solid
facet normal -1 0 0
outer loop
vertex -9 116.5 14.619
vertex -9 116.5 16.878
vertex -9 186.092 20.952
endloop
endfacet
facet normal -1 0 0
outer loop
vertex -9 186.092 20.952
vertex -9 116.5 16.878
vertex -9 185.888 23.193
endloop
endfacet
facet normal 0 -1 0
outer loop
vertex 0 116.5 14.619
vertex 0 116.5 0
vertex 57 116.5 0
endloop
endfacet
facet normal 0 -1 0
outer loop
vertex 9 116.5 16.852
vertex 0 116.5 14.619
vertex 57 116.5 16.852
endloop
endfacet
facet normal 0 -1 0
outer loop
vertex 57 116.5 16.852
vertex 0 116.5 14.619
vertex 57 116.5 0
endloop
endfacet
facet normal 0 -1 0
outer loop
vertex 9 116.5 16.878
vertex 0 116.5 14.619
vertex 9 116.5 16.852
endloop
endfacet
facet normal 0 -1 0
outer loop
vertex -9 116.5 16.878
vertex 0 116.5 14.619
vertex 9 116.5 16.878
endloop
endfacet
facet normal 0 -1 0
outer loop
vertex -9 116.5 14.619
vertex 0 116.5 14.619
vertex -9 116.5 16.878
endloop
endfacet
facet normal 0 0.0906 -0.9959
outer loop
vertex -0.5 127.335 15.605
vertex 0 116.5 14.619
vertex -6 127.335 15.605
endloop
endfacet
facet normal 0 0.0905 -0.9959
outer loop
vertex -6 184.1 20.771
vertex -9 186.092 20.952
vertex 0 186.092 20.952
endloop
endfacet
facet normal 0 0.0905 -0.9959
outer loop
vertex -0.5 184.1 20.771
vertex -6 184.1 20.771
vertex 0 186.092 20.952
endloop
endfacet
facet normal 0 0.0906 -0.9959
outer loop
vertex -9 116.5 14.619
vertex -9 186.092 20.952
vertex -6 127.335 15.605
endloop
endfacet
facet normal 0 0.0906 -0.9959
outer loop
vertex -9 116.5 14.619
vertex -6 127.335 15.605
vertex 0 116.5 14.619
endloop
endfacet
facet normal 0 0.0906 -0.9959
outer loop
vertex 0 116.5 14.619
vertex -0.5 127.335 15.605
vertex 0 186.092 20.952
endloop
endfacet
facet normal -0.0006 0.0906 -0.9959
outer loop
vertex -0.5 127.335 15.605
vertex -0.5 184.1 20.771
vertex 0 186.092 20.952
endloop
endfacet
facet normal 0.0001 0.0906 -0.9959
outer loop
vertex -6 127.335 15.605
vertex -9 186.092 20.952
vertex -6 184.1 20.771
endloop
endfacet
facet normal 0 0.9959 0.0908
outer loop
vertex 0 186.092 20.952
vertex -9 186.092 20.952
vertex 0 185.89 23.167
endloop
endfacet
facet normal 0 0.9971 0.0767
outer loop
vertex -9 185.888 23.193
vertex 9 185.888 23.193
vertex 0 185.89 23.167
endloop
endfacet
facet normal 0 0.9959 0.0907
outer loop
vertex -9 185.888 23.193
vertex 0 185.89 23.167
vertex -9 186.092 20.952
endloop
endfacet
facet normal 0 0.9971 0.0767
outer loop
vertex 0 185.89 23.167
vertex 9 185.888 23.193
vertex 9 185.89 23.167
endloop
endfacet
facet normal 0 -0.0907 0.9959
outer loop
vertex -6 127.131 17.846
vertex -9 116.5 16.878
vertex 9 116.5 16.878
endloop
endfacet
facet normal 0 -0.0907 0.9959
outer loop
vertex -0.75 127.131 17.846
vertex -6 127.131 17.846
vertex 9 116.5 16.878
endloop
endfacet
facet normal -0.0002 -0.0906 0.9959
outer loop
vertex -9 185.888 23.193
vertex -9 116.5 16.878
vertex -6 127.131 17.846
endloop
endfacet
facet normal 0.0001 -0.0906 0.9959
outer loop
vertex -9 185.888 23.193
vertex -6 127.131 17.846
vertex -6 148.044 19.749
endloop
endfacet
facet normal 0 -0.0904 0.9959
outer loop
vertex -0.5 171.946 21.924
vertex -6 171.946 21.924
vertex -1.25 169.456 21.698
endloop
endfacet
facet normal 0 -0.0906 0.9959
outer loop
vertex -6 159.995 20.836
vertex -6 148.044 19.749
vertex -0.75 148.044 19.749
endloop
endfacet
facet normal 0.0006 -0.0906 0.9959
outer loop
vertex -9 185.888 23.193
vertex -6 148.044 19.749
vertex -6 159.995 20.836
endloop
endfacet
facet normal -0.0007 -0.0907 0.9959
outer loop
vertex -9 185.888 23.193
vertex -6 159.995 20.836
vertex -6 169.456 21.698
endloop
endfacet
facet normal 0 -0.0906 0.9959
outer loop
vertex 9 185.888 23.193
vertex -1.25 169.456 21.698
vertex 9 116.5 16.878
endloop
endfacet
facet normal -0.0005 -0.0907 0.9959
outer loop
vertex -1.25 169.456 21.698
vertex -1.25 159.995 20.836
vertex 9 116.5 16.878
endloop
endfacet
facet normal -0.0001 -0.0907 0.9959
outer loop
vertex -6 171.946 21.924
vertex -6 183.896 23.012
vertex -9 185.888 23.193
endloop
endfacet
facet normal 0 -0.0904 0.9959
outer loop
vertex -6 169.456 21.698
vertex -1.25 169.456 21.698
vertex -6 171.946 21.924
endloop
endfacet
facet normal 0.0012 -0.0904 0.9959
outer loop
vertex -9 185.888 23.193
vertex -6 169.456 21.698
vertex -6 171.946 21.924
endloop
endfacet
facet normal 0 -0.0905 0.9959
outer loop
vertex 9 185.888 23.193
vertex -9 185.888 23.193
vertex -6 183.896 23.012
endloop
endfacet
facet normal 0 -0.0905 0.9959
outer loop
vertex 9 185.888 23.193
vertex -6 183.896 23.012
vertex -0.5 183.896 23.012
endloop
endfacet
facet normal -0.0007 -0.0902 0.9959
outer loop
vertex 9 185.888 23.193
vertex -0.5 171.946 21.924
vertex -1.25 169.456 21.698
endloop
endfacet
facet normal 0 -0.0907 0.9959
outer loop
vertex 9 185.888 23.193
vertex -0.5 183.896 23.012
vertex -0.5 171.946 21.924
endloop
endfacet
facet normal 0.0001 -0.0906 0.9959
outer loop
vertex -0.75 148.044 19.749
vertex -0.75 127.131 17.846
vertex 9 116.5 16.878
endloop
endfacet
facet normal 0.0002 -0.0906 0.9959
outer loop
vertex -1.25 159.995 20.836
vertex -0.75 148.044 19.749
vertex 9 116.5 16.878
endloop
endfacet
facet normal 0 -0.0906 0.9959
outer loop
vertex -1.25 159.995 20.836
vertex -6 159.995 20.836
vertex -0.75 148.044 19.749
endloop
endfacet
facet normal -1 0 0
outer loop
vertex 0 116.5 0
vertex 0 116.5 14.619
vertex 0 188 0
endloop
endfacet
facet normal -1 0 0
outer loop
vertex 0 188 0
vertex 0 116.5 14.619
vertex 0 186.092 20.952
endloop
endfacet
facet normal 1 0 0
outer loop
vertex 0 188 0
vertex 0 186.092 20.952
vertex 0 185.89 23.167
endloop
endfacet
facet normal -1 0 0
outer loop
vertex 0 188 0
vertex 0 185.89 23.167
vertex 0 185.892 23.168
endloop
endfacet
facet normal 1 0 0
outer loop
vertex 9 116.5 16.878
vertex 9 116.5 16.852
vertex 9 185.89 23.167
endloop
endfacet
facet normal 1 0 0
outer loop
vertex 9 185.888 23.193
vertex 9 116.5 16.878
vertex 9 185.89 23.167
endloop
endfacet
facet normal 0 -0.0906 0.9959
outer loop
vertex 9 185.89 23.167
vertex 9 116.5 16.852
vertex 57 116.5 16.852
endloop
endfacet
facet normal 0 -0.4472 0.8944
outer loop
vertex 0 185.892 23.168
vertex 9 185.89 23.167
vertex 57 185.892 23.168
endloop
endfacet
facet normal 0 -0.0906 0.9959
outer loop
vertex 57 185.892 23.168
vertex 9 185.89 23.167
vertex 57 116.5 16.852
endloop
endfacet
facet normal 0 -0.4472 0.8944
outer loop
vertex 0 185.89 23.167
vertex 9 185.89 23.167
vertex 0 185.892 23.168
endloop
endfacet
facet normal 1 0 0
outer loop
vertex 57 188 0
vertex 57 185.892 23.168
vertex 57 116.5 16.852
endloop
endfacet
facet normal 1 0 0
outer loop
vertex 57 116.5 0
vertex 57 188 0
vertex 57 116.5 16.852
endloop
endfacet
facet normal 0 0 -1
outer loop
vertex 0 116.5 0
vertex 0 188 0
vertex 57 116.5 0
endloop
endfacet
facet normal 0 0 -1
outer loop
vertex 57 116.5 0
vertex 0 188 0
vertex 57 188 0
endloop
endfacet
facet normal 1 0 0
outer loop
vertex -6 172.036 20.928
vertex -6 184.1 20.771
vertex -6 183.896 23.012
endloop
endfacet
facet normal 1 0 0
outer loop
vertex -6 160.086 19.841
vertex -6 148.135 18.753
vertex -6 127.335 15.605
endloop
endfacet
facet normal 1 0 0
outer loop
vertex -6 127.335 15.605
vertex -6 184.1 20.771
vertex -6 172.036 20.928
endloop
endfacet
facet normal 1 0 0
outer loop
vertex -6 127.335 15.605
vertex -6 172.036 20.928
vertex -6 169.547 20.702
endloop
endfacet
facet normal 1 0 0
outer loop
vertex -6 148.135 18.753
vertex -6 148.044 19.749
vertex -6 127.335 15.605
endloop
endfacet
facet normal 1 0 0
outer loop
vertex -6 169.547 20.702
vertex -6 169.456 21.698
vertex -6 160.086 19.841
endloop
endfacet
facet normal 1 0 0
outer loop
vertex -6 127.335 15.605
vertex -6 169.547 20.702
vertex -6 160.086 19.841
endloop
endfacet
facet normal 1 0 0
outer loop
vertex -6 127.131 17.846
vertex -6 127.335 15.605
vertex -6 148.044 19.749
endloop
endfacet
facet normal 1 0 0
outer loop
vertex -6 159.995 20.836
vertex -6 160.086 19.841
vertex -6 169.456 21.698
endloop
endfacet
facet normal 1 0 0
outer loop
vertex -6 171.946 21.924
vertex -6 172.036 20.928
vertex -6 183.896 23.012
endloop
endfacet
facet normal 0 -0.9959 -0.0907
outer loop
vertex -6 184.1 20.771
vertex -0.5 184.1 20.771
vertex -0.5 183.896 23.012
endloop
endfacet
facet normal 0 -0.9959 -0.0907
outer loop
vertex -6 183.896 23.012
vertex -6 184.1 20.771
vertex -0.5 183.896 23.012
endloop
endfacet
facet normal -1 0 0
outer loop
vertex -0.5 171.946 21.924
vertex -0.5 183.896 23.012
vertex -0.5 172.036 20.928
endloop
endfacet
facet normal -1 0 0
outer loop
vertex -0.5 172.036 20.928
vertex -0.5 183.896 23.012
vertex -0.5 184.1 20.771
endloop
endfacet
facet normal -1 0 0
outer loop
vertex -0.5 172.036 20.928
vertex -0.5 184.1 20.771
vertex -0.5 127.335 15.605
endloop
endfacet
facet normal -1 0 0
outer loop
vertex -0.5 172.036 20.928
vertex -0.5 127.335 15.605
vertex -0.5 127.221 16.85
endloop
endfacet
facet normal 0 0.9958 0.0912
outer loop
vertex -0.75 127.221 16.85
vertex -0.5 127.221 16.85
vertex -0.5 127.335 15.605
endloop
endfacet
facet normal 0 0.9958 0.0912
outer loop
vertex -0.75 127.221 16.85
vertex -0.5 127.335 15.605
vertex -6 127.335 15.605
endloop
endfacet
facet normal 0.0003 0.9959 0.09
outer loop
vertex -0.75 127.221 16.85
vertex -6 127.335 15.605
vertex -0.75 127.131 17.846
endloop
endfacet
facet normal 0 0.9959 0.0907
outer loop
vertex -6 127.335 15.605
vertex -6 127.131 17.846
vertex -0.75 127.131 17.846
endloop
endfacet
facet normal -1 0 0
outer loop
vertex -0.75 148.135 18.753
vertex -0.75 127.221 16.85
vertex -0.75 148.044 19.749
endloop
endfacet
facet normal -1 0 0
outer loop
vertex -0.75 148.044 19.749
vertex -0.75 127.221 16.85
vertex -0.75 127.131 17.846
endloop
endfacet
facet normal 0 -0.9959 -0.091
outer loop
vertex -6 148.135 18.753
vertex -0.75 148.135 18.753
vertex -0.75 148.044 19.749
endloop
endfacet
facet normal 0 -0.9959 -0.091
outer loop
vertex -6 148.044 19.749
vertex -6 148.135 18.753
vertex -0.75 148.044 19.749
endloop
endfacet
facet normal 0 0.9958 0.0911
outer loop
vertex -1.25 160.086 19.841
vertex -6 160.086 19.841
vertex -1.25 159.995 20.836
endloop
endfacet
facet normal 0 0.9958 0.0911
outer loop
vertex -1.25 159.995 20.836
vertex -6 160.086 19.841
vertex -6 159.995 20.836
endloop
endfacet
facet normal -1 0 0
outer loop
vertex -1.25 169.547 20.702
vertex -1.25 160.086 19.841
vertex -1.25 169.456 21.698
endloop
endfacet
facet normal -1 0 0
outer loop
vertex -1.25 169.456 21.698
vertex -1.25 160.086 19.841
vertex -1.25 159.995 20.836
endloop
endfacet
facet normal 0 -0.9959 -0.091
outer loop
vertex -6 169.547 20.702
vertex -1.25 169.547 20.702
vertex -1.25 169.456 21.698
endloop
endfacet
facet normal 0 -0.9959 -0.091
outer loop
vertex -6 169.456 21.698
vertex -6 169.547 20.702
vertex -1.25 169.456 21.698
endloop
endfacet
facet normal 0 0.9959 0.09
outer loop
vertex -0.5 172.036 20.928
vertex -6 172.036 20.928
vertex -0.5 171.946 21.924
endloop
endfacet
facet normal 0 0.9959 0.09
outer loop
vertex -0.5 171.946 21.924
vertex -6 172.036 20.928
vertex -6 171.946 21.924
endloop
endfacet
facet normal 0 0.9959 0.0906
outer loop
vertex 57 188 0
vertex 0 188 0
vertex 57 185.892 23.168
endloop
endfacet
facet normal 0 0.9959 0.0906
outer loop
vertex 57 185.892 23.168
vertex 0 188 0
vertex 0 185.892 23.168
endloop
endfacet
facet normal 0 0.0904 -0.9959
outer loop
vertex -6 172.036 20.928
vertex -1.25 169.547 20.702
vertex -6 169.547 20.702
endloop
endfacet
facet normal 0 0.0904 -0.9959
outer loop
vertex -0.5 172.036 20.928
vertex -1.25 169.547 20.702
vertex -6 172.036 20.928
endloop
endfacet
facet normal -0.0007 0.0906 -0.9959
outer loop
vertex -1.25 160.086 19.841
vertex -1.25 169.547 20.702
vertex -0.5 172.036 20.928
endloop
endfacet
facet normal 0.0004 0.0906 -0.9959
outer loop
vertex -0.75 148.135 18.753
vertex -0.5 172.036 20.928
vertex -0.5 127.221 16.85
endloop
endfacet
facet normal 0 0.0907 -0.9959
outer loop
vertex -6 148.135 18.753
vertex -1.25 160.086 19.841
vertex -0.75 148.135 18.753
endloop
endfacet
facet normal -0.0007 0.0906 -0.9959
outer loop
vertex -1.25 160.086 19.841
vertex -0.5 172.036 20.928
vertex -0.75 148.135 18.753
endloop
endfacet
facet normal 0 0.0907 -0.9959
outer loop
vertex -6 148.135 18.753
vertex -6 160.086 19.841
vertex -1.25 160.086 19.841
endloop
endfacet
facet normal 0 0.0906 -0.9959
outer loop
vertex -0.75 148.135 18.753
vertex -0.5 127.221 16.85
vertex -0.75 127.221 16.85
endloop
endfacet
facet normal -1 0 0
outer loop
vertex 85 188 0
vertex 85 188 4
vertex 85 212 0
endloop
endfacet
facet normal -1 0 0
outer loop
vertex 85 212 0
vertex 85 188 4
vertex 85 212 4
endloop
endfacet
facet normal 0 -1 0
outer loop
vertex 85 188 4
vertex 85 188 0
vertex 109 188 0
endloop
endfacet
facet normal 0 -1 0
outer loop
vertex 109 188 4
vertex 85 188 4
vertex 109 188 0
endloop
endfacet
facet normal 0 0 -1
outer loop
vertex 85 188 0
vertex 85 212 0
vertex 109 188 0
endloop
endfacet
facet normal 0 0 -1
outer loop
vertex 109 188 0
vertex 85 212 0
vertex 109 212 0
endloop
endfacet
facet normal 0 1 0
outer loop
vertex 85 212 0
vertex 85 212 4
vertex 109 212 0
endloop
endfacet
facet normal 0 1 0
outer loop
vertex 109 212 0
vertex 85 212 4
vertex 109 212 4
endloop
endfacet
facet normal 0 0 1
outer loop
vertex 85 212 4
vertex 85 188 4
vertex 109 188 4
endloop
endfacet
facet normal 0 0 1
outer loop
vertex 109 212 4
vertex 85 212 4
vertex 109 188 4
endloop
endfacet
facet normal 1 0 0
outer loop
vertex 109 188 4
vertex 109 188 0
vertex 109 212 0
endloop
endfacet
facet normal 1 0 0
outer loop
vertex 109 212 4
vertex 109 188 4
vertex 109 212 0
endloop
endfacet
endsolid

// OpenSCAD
// Main geometry of the wedge
wedge_length = 188;
wedge_width = 75;
heigth_front = 4;
heigth_back = 21;
wedge_angle = 5.2;		// found by trial and error

// Mounting part
mount_length = 70;
mount_width = 18;
mount_height = 2.25;

// distance between the back and 1st socket(from the back)
dist_back_1 = 2;

// hole 1 dimensions
hole1_length = 12;
hole1_width = 5.5;
hole1_height = mount_height + 1;

// distance between the 1st and 2nd socket(from the back)
dist_1_2 = 2.5;

// hole 2 dimensions
hole2_length = 9.5;
hole2_width = 4.75;
hole2_height = mount_height + 1;

// distance between the 2nd and 3rd socket(from the back)
dist_2_3 = 12;

// hole 3 dimensions
hole3_length = 21;
hole3_width = 5.25;
hole3_height = mount_height + 1;

// Some output for quick measuring (in german)
// plus some stupid spacing alignment
echo(str ("Abstand Loch 1 zum hinteren Ende :", dist_back_1));
echo(str ("Länge Loch 1                                   : ", hole1_length));
echo(str ("Abstand Loch 2 zu Loch 1                : ", dist_1_2));
echo(str ("Länge Loch 2                                   : ", hole2_length));
echo(str ("Abstand Loch 2 zu Loch 3                : ", dist_2_3));
echo(str ("Länge Loch 3                                   : ", hole3_length));
echo(str ("Rest                                                 : ", 
	 mount_length - dist_back_1 - hole1_length - dist_1_2 - hole2_length - dist_2_3 - hole3_length));


// wedge : 

// rotate it so it's resting on it's top
//rotate([0,180,0])

// rotate it so it's even on the ground
//rotate([-wedge_angle, 0, 0])

difference() {
	union() {
		difference() {
			// main cube which is reduced bit by bit
			cube(size = [wedge_width, wedge_length, heigth_back + mount_height], center = false);
			// 
			union() {
				// subtraction of the upper pitch
				// x : -0.5 for clear edges
				// z : offset since it has some heigth in the front + the heigth of the mount
				translate([-0.5, 0, heigth_front + mount_height])
					rotate([wedge_angle, 0, 0])
						// x : + 1 for clear edges
						// y : + 5 just to be sure
						// z : 25 just to be sure
						cube(size = [wedge_width + 1, wedge_length + 5, 25], center = false);
				// subtraction of the back pitch
				// x : -0.5 for clear edges
				// y : to start at the back end of the wedge
				translate([-0.5, wedge_length, 0])
					rotate([wedge_angle, 0, 0])
						// x : + 1 for clear edges
						// y : 5 just to be sure 
						// z : 25 just to be sure
						cube(size = [wedge_width + 1, 5, 25], center = false);
			}
		}

		difference() {
			rotate([wedge_angle, 0, 0])
				translate([- (mount_width / 2), wedge_length - mount_length - 0.775, heigth_front])
					cube(size = [mount_width, mount_length, mount_height]);
			union() {

				rotate([wedge_angle, 0, 0])
					//translate([-(hole1_width + 1), wedge_length - 0.775 - (hole1_length + 2), heigth_front - 0.5])
					translate([-(mount_width / 2 - 3), wedge_length - 0.775 - (hole1_length + dist_back_1), heigth_front - 0.5])
						cube(size = [hole1_width, hole1_length, hole1_height]);
				rotate([wedge_angle, 0, 0])
					translate([-(mount_width / 2 - 3), wedge_length - 0.775 - ((hole1_length + dist_back_1) + hole2_length + dist_1_2), heigth_front - 0.5])
						cube(size = [hole2_width, hole2_length, hole2_height]);
				rotate([wedge_angle, 0, 0])
					translate([-(mount_width / 2 - 3), wedge_length - 0.775 - ((hole1_length + dist_back_1) + (hole2_length + dist_1_2) + hole3_length + dist_2_3), heigth_front - 0.5])
						cube(size = [hole3_width, hole3_length, hole3_height]);
				rotate([wedge_angle, 0, 0])
					translate([-(mount_width / 2 - 3), wedge_length - 0.775 - ((hole1_length + dist_back_1) + (hole2_length + dist_1_2) + hole3_length + dist_2_3), heigth_front - 2])
						cube(size = [hole1_width, hole1_length + dist_1_2 + hole2_length + dist_2_3 + hole3_length, 3.25]);
			}
		}
	}
	union() {
		// Abschneiden vorne
				translate([-(0.5 +mount_width / 2), -0.5, -0.5])
					cube([wedge_width + mount_width / 2 + 1,wedge_length - mount_length - 1, 20 ]);
				// Abschneiden rechts
				//translate([mount_width / 2, wedge_length - mount_length - 2, -0.5])
					//cube([wedge_width + 0.5, mount_length + 10, 25]);
				translate([57, wedge_length - mount_length - 2, -0.5])
					cube([wedge_width - 57 + 0.5, mount_length + 10, 25]);
	}

}
// part on top of the wedge (too complicated too print the whole thing in one part)
// could be redone more elaborate with an identation so the right part of the 
// laptop can't be moved back and forth.
translate([wedge_width + 10, wedge_length, 0])
	// dimensions by trial and error
	cube([24,24,4]);
